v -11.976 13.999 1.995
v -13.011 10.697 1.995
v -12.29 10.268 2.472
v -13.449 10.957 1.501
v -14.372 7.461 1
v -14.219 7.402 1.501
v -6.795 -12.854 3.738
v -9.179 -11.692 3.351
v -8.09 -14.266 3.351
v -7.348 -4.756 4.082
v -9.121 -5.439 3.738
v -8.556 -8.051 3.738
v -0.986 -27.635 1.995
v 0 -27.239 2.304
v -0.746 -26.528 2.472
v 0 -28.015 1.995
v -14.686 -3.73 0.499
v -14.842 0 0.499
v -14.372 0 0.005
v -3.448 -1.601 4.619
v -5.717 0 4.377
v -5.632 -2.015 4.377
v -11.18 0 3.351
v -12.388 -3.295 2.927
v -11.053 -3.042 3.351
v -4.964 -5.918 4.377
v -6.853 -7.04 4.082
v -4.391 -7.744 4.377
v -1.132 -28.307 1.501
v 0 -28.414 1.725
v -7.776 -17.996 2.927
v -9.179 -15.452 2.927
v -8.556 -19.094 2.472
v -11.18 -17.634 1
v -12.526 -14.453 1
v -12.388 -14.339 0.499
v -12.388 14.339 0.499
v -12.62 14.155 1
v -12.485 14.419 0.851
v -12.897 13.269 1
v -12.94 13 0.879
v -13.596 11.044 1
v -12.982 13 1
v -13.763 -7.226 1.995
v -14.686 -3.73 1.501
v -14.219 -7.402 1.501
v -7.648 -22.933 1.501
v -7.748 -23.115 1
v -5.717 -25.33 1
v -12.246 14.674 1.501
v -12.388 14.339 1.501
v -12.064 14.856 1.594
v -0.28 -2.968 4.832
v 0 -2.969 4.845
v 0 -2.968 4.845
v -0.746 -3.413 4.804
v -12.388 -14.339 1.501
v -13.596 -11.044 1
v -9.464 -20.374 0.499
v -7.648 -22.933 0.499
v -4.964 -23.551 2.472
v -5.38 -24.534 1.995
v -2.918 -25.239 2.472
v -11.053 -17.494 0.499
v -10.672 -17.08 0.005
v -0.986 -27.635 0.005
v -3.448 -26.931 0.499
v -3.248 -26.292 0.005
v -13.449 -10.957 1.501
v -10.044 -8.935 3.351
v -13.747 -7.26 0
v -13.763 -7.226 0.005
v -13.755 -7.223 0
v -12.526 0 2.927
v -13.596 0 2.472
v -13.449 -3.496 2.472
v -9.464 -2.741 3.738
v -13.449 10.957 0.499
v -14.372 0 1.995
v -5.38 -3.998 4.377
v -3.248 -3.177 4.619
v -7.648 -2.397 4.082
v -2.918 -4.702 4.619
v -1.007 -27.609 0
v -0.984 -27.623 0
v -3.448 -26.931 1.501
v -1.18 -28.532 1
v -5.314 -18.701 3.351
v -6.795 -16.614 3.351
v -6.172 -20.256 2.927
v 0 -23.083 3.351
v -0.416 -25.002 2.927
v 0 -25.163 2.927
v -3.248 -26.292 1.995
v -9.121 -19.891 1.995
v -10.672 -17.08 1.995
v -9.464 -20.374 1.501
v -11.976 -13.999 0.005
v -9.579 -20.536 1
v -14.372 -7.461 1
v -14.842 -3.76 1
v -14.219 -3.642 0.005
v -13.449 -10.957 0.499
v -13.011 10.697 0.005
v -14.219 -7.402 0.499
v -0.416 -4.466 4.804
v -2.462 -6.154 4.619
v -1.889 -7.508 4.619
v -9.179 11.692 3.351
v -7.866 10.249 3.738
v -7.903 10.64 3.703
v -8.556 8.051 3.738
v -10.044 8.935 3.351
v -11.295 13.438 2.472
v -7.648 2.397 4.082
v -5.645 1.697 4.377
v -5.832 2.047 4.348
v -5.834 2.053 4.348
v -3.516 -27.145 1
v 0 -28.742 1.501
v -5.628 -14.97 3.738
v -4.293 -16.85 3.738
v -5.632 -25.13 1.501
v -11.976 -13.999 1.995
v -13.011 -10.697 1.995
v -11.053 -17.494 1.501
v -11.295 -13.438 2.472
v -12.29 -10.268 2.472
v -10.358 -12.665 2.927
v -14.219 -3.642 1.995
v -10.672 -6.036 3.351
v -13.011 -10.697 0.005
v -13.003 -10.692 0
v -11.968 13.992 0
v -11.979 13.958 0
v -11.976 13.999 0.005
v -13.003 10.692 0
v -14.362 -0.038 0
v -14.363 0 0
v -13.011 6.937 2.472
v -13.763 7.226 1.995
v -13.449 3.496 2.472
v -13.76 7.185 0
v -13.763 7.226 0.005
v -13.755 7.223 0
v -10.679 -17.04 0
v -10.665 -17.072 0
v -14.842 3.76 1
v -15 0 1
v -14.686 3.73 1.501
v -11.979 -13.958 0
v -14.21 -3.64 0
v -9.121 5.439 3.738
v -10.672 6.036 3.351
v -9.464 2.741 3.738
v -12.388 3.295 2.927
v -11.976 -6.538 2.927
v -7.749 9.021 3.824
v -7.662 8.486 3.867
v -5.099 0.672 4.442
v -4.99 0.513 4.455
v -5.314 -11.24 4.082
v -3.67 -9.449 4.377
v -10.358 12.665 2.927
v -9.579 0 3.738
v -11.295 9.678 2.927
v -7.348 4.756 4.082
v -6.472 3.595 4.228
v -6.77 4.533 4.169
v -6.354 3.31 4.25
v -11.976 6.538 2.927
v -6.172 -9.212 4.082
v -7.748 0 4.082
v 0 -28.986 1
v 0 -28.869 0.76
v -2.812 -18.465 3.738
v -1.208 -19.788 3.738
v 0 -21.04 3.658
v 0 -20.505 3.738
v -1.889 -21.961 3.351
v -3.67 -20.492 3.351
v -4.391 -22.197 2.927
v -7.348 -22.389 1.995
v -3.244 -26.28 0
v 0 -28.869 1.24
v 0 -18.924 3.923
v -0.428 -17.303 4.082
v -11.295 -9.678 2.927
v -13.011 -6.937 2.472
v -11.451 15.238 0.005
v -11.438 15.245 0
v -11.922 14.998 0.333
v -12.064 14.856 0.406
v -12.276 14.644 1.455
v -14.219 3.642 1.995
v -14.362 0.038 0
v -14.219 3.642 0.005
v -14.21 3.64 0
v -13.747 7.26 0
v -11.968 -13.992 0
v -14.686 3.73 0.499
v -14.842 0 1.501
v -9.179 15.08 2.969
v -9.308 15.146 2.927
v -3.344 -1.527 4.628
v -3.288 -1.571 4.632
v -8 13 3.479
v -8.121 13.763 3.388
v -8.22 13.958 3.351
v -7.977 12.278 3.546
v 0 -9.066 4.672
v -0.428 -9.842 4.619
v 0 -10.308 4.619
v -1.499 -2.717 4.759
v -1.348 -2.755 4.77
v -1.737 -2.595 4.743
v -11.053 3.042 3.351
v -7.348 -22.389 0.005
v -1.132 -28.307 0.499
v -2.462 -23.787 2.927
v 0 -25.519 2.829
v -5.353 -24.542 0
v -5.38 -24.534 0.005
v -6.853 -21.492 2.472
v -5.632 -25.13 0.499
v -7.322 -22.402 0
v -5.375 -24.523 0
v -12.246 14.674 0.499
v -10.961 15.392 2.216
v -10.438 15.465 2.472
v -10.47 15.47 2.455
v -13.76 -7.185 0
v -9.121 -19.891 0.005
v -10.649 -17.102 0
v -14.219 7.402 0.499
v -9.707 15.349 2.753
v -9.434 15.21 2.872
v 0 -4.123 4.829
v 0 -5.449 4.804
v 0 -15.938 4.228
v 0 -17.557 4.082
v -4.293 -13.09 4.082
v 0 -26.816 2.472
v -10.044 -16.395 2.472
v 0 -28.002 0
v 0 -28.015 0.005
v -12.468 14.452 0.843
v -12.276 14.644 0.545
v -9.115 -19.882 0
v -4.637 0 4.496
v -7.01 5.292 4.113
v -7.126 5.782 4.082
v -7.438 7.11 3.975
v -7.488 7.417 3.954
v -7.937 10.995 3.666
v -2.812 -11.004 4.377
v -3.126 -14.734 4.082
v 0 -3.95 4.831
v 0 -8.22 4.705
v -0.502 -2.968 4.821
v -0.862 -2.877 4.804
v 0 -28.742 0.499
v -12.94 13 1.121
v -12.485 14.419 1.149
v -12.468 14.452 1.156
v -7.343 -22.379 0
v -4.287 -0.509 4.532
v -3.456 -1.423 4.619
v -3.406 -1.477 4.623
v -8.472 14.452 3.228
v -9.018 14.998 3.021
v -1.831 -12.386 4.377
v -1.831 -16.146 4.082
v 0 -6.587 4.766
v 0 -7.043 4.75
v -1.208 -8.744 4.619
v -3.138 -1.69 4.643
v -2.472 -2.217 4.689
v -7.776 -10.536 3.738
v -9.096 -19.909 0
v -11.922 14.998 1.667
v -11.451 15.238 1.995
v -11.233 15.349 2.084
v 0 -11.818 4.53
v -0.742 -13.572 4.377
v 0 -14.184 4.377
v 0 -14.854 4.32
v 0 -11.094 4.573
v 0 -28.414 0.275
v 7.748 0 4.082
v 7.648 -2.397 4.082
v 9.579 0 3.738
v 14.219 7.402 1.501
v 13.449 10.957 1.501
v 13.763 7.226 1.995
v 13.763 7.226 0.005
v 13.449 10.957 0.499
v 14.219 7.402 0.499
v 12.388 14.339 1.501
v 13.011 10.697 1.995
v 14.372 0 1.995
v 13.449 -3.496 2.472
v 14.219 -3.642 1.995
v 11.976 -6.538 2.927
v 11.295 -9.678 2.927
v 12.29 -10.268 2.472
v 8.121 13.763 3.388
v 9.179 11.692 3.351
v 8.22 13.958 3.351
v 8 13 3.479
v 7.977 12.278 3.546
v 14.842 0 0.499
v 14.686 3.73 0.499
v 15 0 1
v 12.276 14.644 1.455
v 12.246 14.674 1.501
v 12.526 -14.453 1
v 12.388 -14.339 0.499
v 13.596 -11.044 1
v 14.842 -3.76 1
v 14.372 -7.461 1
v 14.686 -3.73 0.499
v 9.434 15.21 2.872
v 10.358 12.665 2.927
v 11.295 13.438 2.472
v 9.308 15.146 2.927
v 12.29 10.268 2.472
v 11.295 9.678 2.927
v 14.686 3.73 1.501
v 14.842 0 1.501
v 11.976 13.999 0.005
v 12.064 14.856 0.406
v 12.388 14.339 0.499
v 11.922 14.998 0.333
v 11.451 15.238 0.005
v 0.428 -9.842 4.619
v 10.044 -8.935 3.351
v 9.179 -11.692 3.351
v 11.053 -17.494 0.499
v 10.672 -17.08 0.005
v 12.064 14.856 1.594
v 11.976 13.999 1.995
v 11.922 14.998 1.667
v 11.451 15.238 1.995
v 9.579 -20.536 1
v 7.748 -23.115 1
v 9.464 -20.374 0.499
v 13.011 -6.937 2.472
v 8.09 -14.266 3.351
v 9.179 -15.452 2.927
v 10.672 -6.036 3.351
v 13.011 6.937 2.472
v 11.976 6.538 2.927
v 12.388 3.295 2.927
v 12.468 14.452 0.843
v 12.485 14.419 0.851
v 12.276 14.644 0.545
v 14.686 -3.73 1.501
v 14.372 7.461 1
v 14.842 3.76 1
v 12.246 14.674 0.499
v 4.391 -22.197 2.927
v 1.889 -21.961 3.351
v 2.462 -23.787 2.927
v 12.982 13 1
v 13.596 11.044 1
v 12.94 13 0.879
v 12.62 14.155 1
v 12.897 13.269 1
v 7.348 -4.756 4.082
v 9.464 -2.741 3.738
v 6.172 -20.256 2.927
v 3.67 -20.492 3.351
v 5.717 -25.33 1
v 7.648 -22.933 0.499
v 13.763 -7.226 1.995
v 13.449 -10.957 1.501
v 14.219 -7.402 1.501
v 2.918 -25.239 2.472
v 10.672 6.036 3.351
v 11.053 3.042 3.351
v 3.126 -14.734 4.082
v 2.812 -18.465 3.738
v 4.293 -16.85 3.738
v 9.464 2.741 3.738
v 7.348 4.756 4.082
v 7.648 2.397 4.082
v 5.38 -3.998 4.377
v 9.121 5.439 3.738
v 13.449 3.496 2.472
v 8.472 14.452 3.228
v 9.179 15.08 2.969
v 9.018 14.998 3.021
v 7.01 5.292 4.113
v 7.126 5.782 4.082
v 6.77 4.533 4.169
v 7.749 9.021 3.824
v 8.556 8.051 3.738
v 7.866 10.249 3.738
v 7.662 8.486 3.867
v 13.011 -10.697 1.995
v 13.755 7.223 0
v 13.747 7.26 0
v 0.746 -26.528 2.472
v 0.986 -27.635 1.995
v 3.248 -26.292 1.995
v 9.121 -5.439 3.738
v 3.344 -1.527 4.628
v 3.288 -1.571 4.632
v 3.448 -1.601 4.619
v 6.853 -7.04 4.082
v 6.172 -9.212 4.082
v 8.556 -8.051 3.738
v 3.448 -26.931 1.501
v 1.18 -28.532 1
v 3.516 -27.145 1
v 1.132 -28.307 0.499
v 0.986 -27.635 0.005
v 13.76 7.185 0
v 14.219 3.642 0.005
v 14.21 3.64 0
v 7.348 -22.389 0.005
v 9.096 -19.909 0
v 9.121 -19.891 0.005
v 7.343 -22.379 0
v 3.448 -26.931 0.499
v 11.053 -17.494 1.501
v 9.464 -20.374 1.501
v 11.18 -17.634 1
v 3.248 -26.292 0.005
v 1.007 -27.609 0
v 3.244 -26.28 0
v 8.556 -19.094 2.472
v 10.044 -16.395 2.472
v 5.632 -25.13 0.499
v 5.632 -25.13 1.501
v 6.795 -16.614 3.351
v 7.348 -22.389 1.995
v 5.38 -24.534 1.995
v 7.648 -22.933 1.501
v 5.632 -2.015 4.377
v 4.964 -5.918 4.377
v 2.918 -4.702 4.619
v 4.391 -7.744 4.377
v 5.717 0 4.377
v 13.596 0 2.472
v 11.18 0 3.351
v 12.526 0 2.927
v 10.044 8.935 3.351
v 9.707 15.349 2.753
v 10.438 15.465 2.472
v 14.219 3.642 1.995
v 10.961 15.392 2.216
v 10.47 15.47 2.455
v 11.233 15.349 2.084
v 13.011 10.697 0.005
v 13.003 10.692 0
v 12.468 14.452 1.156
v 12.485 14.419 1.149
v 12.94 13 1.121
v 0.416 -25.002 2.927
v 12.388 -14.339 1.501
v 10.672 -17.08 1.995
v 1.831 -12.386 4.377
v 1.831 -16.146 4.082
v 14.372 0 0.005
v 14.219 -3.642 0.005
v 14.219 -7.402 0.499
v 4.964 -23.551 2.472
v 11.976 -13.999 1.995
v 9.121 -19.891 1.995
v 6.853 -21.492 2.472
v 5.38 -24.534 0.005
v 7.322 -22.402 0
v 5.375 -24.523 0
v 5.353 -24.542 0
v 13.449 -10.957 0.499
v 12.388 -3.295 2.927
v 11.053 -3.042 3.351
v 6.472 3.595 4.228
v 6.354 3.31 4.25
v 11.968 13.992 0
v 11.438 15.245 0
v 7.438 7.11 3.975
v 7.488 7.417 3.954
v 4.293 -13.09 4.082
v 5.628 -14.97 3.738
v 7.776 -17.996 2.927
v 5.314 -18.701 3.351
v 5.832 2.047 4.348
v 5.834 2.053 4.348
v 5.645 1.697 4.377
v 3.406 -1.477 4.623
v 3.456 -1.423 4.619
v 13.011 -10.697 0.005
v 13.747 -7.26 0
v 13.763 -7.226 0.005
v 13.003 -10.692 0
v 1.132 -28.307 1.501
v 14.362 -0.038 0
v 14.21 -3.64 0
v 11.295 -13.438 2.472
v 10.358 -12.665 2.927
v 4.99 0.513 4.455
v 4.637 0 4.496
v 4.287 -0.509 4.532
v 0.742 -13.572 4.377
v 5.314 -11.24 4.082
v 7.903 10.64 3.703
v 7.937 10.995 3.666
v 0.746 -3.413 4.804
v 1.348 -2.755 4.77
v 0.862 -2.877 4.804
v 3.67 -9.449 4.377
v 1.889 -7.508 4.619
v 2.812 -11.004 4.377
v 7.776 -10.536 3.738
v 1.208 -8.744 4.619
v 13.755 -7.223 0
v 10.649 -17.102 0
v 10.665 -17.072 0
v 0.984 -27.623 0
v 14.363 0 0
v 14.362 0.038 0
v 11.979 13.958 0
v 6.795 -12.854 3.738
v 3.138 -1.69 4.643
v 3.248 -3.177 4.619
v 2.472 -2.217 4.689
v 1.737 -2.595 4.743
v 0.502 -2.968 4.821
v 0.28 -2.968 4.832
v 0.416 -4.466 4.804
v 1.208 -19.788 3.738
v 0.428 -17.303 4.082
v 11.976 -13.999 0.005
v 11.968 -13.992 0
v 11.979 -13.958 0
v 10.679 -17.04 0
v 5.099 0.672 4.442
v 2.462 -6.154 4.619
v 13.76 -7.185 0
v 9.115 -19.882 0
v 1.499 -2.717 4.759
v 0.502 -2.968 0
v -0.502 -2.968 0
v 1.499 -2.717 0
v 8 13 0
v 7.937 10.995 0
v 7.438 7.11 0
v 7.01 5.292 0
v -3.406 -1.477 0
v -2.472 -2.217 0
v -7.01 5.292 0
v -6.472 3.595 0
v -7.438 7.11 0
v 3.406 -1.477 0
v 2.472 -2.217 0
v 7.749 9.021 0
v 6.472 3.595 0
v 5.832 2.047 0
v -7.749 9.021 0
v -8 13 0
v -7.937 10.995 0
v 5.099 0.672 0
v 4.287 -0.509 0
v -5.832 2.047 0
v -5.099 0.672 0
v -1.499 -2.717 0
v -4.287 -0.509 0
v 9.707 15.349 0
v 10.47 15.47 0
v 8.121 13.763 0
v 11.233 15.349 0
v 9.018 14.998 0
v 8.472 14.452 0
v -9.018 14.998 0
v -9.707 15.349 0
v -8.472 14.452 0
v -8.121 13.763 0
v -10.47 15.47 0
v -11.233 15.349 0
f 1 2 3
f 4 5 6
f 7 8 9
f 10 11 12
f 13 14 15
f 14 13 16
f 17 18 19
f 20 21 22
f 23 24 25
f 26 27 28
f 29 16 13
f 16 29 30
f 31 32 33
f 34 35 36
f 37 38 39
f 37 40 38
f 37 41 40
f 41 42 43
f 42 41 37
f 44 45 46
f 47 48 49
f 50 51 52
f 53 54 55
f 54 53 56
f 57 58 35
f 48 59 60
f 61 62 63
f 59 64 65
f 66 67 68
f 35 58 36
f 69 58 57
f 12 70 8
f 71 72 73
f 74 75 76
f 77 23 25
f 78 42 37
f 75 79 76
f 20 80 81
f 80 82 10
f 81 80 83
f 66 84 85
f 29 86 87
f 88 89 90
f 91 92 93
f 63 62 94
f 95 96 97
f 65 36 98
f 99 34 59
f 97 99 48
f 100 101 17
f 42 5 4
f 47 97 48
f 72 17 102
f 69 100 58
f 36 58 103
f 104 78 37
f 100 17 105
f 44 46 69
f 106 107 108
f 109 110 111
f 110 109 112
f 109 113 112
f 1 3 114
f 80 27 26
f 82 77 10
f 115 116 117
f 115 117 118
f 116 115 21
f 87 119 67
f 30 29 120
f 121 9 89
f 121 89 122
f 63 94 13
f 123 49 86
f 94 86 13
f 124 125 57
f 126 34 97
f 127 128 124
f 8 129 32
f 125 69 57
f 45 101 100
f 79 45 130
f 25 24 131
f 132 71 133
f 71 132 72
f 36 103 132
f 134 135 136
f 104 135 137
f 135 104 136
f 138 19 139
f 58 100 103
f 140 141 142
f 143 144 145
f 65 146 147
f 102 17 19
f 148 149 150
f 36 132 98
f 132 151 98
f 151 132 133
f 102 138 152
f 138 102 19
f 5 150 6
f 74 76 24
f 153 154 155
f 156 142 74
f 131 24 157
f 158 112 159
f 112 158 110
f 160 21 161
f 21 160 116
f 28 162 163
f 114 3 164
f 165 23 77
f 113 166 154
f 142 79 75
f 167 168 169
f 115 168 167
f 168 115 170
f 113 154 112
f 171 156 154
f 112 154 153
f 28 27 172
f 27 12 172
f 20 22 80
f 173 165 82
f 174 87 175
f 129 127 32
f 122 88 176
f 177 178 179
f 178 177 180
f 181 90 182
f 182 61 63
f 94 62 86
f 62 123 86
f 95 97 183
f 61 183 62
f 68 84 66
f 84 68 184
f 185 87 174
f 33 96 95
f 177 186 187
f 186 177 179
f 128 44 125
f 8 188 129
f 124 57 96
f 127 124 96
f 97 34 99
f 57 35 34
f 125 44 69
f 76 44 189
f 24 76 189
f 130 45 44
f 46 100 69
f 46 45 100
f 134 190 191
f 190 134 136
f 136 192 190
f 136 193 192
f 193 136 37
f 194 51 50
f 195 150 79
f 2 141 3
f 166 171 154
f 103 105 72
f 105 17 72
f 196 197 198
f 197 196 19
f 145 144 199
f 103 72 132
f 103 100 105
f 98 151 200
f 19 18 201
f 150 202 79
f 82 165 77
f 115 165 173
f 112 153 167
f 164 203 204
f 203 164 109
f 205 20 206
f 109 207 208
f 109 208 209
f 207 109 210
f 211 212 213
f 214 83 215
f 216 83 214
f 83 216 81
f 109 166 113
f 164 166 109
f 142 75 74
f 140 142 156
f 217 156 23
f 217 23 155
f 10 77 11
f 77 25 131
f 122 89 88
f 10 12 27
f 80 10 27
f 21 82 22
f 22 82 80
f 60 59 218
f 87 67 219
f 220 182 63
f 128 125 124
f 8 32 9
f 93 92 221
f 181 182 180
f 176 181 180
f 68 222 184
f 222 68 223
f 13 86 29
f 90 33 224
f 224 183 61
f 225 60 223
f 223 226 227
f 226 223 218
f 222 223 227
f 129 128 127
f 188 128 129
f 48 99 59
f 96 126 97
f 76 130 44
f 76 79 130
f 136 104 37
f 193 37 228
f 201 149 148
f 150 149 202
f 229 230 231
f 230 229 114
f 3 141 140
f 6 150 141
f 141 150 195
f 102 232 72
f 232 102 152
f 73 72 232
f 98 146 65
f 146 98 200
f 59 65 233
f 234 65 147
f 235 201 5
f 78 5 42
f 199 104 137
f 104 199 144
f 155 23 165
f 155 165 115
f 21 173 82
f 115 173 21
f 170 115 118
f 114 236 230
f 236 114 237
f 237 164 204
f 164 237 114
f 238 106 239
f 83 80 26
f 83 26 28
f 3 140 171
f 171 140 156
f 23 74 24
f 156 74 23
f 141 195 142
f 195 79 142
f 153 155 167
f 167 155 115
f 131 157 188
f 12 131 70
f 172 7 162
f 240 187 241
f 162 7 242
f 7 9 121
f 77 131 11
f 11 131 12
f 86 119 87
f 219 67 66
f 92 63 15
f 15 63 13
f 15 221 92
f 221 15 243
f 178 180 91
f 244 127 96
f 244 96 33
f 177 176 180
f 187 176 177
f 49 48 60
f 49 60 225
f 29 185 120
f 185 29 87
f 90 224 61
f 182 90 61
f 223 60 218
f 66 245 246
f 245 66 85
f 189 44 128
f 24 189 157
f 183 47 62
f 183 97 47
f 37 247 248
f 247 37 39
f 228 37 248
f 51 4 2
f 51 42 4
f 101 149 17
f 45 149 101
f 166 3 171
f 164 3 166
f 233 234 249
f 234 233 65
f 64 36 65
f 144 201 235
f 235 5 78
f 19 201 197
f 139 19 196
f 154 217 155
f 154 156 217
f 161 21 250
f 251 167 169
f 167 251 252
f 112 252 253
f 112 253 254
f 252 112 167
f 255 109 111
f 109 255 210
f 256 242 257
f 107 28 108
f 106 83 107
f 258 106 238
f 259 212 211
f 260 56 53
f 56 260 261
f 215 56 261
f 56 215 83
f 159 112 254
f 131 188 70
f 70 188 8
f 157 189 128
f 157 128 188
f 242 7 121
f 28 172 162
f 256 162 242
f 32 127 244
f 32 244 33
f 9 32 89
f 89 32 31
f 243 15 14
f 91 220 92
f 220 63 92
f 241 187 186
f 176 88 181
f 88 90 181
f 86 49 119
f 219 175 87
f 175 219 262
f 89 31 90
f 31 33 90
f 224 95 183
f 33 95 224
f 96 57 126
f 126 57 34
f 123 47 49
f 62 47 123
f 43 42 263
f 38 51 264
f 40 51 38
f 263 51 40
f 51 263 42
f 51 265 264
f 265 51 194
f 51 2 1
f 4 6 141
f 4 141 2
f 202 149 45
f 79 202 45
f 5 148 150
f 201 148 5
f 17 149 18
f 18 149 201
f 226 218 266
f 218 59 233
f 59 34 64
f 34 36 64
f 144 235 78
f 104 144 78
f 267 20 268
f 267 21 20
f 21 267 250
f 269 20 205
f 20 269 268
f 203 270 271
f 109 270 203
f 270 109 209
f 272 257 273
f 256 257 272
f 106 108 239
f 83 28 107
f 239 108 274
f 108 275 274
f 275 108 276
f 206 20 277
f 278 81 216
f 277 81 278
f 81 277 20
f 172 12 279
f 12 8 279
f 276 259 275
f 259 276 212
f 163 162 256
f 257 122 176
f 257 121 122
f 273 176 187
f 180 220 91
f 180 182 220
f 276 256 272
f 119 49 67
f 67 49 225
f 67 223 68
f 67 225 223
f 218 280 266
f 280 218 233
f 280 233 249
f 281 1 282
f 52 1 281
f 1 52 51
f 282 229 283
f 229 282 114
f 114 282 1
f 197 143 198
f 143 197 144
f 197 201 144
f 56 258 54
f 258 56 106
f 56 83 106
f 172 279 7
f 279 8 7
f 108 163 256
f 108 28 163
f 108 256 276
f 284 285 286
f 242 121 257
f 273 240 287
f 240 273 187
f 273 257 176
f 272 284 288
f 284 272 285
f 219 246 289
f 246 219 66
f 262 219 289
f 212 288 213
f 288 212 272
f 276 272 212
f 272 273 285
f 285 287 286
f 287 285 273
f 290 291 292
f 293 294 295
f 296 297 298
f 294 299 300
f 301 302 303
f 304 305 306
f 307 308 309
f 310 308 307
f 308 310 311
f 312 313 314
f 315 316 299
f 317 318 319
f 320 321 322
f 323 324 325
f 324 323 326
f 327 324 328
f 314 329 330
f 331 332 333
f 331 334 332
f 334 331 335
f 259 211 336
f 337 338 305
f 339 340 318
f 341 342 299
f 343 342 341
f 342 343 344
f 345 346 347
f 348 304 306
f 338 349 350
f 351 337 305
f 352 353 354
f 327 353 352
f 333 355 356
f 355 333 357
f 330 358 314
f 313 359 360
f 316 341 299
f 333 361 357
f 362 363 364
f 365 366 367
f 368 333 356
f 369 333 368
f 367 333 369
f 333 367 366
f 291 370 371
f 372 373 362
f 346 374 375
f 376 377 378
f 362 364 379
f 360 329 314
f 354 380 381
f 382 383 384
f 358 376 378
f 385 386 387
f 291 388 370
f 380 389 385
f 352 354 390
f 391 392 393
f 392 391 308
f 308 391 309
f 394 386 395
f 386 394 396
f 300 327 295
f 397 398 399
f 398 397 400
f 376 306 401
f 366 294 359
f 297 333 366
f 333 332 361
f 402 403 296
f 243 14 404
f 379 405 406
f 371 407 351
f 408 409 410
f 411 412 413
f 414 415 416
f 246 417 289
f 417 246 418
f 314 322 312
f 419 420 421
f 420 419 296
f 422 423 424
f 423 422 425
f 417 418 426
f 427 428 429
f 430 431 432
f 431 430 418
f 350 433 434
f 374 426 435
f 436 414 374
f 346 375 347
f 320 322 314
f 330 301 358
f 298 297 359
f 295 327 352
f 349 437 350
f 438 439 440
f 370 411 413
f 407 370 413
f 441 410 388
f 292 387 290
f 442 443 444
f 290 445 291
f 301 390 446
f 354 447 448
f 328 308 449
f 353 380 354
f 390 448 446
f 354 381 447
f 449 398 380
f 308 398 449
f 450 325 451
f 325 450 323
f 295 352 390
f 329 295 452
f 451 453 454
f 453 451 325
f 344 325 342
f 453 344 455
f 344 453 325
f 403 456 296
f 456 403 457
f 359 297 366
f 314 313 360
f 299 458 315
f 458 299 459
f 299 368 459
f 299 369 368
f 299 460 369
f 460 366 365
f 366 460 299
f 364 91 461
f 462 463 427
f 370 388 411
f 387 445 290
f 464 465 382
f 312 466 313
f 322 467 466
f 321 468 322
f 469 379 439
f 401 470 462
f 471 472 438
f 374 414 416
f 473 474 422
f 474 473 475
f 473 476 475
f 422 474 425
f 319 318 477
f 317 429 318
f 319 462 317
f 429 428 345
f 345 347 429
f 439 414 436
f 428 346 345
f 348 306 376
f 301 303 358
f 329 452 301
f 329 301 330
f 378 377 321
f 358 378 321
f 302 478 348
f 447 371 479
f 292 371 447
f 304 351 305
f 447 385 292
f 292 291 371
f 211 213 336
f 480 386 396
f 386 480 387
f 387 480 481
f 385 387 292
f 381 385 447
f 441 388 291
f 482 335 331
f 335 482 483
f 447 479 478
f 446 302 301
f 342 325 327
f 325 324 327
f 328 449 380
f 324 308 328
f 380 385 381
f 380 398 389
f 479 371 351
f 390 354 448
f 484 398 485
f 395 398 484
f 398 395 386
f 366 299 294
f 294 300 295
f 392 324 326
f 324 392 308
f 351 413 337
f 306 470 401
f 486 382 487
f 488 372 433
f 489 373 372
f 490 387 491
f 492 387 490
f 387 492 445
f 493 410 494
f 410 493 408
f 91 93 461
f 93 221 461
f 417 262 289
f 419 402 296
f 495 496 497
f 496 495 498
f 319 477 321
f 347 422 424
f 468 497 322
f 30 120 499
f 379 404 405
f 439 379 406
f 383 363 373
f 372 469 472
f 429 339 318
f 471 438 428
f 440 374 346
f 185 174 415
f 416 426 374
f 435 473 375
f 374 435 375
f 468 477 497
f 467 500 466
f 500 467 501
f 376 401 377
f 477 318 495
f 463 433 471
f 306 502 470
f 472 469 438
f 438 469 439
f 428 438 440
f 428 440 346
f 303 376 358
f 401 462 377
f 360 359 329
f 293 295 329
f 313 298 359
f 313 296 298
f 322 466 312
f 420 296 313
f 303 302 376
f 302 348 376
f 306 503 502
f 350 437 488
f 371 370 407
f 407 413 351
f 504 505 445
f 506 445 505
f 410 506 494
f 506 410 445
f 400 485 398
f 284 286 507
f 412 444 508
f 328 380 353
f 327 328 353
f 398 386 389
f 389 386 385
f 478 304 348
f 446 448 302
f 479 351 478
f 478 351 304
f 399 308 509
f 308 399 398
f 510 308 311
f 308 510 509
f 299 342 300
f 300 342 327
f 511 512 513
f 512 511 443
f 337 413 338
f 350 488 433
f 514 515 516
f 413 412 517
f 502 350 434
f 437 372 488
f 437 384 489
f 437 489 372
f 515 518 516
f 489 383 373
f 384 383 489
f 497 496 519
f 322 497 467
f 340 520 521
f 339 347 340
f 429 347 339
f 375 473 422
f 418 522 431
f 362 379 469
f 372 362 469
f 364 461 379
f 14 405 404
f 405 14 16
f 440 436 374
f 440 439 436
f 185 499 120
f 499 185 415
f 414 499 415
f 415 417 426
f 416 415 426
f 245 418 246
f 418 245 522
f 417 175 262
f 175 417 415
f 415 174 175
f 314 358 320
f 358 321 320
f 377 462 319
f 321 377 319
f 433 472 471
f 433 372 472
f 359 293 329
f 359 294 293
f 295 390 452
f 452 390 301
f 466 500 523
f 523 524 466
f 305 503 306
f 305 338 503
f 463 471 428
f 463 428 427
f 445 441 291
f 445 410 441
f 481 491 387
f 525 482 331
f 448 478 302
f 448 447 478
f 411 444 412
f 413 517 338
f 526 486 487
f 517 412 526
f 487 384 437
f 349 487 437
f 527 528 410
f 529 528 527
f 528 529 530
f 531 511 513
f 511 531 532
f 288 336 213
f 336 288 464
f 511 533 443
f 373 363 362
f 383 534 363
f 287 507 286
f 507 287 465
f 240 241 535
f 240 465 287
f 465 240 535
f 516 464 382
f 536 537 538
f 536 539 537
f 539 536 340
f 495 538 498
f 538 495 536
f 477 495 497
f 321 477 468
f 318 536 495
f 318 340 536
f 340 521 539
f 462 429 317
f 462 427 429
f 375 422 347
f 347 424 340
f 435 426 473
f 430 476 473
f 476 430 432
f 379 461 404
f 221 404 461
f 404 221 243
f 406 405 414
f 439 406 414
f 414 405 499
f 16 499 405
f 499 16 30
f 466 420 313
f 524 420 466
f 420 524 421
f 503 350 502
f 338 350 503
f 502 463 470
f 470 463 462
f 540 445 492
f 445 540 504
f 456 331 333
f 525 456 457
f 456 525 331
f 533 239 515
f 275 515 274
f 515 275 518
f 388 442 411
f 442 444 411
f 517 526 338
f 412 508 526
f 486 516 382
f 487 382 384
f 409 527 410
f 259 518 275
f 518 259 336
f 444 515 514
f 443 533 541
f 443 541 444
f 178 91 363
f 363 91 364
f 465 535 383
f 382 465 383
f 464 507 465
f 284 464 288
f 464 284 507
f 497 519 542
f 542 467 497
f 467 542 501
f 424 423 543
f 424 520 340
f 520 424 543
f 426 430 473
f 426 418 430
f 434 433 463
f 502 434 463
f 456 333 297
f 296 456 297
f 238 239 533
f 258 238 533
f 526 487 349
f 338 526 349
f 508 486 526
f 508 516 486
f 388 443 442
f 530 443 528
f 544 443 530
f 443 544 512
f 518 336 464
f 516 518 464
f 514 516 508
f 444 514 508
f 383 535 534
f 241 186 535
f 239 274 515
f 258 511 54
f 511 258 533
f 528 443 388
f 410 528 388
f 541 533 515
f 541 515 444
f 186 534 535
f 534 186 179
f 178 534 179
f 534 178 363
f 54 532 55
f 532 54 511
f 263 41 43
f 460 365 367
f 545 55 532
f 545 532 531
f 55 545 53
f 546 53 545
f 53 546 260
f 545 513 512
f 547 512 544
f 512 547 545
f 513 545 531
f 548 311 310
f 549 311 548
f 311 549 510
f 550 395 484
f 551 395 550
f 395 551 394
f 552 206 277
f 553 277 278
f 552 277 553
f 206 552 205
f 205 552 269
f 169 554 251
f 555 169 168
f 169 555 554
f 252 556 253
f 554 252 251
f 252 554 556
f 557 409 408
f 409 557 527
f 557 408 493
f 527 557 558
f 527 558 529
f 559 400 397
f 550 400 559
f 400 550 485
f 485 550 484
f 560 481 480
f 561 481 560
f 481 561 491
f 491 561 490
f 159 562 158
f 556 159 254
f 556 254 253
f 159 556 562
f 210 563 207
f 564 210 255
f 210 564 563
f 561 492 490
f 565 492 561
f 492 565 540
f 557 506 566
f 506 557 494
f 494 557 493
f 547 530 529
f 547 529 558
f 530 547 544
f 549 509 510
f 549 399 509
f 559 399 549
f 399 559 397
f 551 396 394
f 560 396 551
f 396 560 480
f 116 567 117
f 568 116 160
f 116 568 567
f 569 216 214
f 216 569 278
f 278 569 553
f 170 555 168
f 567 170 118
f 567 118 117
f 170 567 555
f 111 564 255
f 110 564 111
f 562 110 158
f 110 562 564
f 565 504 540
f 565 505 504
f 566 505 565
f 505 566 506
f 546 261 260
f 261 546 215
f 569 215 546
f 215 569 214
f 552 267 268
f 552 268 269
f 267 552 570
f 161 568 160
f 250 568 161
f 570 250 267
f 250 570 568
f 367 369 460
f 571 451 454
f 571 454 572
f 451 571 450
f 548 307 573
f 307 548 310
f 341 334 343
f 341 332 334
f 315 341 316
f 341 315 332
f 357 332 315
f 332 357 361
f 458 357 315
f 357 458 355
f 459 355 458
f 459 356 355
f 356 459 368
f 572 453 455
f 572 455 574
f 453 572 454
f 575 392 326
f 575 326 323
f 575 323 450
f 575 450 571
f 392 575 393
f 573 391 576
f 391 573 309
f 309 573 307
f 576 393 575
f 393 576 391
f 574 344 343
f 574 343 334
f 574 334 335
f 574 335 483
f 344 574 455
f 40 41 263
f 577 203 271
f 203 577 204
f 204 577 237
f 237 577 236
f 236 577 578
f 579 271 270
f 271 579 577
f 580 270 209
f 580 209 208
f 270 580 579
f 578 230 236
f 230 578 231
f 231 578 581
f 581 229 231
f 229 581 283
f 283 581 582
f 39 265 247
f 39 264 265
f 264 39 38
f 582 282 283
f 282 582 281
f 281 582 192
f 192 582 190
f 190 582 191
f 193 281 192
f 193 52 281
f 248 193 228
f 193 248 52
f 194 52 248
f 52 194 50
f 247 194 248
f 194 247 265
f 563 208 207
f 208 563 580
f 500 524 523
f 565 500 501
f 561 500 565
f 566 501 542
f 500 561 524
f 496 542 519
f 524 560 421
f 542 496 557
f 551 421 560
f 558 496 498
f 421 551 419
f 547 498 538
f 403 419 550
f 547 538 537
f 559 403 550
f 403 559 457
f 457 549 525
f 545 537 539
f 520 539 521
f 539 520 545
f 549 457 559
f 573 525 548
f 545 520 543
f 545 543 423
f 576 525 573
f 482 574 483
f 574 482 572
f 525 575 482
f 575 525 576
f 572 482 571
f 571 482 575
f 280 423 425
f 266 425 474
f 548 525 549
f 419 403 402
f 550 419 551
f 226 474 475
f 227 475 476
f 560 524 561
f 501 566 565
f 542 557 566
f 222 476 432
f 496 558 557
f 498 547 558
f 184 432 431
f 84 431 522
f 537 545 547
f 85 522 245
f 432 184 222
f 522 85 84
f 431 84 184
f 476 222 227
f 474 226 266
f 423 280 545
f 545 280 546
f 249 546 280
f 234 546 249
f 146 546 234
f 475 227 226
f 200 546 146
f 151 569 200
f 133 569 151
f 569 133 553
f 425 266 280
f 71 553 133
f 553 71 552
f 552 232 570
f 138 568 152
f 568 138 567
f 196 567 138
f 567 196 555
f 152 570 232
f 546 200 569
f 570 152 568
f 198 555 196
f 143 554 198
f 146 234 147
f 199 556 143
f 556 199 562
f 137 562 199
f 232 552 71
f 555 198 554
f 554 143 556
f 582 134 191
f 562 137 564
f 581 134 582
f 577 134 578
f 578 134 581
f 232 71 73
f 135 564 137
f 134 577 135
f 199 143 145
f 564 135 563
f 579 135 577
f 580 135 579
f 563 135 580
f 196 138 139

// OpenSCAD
// Adjustments
$fa=1;
$fn = 50;
$fs = 1;
END_R=2.47;
HOLE_R=8;

difference() {
    // Main oval
    intersection() {
        translate([5,0,1])
            scale([1,1.5,.2])
                sphere(r=20);
        translate([-5,0,1])
            scale([1,1.5,.2])
                sphere(r=20);
    }

    // Cut handle
    translate([0,13,0])
        // Complex shape to cut rounded corners
        difference() {
            union() {
                translate([0,30,0])
                    cube([60,60,40], center=true);
                scale([1,2,1])
                    cylinder(r=HOLE_R, h=40, center=true);
            }

            translate([HOLE_R + END_R,0,0])
                cylinder(r=END_R, h=40.01, center=true, $fn=20);

            translate([-(HOLE_R + END_R),0,0])
                cylinder(r=END_R, h=40.01, center=true, $fn=20);
        }
    // Cut off bottom for flat print
    translate([-50,-50,-100])
        cube([100,100,100]);

}
